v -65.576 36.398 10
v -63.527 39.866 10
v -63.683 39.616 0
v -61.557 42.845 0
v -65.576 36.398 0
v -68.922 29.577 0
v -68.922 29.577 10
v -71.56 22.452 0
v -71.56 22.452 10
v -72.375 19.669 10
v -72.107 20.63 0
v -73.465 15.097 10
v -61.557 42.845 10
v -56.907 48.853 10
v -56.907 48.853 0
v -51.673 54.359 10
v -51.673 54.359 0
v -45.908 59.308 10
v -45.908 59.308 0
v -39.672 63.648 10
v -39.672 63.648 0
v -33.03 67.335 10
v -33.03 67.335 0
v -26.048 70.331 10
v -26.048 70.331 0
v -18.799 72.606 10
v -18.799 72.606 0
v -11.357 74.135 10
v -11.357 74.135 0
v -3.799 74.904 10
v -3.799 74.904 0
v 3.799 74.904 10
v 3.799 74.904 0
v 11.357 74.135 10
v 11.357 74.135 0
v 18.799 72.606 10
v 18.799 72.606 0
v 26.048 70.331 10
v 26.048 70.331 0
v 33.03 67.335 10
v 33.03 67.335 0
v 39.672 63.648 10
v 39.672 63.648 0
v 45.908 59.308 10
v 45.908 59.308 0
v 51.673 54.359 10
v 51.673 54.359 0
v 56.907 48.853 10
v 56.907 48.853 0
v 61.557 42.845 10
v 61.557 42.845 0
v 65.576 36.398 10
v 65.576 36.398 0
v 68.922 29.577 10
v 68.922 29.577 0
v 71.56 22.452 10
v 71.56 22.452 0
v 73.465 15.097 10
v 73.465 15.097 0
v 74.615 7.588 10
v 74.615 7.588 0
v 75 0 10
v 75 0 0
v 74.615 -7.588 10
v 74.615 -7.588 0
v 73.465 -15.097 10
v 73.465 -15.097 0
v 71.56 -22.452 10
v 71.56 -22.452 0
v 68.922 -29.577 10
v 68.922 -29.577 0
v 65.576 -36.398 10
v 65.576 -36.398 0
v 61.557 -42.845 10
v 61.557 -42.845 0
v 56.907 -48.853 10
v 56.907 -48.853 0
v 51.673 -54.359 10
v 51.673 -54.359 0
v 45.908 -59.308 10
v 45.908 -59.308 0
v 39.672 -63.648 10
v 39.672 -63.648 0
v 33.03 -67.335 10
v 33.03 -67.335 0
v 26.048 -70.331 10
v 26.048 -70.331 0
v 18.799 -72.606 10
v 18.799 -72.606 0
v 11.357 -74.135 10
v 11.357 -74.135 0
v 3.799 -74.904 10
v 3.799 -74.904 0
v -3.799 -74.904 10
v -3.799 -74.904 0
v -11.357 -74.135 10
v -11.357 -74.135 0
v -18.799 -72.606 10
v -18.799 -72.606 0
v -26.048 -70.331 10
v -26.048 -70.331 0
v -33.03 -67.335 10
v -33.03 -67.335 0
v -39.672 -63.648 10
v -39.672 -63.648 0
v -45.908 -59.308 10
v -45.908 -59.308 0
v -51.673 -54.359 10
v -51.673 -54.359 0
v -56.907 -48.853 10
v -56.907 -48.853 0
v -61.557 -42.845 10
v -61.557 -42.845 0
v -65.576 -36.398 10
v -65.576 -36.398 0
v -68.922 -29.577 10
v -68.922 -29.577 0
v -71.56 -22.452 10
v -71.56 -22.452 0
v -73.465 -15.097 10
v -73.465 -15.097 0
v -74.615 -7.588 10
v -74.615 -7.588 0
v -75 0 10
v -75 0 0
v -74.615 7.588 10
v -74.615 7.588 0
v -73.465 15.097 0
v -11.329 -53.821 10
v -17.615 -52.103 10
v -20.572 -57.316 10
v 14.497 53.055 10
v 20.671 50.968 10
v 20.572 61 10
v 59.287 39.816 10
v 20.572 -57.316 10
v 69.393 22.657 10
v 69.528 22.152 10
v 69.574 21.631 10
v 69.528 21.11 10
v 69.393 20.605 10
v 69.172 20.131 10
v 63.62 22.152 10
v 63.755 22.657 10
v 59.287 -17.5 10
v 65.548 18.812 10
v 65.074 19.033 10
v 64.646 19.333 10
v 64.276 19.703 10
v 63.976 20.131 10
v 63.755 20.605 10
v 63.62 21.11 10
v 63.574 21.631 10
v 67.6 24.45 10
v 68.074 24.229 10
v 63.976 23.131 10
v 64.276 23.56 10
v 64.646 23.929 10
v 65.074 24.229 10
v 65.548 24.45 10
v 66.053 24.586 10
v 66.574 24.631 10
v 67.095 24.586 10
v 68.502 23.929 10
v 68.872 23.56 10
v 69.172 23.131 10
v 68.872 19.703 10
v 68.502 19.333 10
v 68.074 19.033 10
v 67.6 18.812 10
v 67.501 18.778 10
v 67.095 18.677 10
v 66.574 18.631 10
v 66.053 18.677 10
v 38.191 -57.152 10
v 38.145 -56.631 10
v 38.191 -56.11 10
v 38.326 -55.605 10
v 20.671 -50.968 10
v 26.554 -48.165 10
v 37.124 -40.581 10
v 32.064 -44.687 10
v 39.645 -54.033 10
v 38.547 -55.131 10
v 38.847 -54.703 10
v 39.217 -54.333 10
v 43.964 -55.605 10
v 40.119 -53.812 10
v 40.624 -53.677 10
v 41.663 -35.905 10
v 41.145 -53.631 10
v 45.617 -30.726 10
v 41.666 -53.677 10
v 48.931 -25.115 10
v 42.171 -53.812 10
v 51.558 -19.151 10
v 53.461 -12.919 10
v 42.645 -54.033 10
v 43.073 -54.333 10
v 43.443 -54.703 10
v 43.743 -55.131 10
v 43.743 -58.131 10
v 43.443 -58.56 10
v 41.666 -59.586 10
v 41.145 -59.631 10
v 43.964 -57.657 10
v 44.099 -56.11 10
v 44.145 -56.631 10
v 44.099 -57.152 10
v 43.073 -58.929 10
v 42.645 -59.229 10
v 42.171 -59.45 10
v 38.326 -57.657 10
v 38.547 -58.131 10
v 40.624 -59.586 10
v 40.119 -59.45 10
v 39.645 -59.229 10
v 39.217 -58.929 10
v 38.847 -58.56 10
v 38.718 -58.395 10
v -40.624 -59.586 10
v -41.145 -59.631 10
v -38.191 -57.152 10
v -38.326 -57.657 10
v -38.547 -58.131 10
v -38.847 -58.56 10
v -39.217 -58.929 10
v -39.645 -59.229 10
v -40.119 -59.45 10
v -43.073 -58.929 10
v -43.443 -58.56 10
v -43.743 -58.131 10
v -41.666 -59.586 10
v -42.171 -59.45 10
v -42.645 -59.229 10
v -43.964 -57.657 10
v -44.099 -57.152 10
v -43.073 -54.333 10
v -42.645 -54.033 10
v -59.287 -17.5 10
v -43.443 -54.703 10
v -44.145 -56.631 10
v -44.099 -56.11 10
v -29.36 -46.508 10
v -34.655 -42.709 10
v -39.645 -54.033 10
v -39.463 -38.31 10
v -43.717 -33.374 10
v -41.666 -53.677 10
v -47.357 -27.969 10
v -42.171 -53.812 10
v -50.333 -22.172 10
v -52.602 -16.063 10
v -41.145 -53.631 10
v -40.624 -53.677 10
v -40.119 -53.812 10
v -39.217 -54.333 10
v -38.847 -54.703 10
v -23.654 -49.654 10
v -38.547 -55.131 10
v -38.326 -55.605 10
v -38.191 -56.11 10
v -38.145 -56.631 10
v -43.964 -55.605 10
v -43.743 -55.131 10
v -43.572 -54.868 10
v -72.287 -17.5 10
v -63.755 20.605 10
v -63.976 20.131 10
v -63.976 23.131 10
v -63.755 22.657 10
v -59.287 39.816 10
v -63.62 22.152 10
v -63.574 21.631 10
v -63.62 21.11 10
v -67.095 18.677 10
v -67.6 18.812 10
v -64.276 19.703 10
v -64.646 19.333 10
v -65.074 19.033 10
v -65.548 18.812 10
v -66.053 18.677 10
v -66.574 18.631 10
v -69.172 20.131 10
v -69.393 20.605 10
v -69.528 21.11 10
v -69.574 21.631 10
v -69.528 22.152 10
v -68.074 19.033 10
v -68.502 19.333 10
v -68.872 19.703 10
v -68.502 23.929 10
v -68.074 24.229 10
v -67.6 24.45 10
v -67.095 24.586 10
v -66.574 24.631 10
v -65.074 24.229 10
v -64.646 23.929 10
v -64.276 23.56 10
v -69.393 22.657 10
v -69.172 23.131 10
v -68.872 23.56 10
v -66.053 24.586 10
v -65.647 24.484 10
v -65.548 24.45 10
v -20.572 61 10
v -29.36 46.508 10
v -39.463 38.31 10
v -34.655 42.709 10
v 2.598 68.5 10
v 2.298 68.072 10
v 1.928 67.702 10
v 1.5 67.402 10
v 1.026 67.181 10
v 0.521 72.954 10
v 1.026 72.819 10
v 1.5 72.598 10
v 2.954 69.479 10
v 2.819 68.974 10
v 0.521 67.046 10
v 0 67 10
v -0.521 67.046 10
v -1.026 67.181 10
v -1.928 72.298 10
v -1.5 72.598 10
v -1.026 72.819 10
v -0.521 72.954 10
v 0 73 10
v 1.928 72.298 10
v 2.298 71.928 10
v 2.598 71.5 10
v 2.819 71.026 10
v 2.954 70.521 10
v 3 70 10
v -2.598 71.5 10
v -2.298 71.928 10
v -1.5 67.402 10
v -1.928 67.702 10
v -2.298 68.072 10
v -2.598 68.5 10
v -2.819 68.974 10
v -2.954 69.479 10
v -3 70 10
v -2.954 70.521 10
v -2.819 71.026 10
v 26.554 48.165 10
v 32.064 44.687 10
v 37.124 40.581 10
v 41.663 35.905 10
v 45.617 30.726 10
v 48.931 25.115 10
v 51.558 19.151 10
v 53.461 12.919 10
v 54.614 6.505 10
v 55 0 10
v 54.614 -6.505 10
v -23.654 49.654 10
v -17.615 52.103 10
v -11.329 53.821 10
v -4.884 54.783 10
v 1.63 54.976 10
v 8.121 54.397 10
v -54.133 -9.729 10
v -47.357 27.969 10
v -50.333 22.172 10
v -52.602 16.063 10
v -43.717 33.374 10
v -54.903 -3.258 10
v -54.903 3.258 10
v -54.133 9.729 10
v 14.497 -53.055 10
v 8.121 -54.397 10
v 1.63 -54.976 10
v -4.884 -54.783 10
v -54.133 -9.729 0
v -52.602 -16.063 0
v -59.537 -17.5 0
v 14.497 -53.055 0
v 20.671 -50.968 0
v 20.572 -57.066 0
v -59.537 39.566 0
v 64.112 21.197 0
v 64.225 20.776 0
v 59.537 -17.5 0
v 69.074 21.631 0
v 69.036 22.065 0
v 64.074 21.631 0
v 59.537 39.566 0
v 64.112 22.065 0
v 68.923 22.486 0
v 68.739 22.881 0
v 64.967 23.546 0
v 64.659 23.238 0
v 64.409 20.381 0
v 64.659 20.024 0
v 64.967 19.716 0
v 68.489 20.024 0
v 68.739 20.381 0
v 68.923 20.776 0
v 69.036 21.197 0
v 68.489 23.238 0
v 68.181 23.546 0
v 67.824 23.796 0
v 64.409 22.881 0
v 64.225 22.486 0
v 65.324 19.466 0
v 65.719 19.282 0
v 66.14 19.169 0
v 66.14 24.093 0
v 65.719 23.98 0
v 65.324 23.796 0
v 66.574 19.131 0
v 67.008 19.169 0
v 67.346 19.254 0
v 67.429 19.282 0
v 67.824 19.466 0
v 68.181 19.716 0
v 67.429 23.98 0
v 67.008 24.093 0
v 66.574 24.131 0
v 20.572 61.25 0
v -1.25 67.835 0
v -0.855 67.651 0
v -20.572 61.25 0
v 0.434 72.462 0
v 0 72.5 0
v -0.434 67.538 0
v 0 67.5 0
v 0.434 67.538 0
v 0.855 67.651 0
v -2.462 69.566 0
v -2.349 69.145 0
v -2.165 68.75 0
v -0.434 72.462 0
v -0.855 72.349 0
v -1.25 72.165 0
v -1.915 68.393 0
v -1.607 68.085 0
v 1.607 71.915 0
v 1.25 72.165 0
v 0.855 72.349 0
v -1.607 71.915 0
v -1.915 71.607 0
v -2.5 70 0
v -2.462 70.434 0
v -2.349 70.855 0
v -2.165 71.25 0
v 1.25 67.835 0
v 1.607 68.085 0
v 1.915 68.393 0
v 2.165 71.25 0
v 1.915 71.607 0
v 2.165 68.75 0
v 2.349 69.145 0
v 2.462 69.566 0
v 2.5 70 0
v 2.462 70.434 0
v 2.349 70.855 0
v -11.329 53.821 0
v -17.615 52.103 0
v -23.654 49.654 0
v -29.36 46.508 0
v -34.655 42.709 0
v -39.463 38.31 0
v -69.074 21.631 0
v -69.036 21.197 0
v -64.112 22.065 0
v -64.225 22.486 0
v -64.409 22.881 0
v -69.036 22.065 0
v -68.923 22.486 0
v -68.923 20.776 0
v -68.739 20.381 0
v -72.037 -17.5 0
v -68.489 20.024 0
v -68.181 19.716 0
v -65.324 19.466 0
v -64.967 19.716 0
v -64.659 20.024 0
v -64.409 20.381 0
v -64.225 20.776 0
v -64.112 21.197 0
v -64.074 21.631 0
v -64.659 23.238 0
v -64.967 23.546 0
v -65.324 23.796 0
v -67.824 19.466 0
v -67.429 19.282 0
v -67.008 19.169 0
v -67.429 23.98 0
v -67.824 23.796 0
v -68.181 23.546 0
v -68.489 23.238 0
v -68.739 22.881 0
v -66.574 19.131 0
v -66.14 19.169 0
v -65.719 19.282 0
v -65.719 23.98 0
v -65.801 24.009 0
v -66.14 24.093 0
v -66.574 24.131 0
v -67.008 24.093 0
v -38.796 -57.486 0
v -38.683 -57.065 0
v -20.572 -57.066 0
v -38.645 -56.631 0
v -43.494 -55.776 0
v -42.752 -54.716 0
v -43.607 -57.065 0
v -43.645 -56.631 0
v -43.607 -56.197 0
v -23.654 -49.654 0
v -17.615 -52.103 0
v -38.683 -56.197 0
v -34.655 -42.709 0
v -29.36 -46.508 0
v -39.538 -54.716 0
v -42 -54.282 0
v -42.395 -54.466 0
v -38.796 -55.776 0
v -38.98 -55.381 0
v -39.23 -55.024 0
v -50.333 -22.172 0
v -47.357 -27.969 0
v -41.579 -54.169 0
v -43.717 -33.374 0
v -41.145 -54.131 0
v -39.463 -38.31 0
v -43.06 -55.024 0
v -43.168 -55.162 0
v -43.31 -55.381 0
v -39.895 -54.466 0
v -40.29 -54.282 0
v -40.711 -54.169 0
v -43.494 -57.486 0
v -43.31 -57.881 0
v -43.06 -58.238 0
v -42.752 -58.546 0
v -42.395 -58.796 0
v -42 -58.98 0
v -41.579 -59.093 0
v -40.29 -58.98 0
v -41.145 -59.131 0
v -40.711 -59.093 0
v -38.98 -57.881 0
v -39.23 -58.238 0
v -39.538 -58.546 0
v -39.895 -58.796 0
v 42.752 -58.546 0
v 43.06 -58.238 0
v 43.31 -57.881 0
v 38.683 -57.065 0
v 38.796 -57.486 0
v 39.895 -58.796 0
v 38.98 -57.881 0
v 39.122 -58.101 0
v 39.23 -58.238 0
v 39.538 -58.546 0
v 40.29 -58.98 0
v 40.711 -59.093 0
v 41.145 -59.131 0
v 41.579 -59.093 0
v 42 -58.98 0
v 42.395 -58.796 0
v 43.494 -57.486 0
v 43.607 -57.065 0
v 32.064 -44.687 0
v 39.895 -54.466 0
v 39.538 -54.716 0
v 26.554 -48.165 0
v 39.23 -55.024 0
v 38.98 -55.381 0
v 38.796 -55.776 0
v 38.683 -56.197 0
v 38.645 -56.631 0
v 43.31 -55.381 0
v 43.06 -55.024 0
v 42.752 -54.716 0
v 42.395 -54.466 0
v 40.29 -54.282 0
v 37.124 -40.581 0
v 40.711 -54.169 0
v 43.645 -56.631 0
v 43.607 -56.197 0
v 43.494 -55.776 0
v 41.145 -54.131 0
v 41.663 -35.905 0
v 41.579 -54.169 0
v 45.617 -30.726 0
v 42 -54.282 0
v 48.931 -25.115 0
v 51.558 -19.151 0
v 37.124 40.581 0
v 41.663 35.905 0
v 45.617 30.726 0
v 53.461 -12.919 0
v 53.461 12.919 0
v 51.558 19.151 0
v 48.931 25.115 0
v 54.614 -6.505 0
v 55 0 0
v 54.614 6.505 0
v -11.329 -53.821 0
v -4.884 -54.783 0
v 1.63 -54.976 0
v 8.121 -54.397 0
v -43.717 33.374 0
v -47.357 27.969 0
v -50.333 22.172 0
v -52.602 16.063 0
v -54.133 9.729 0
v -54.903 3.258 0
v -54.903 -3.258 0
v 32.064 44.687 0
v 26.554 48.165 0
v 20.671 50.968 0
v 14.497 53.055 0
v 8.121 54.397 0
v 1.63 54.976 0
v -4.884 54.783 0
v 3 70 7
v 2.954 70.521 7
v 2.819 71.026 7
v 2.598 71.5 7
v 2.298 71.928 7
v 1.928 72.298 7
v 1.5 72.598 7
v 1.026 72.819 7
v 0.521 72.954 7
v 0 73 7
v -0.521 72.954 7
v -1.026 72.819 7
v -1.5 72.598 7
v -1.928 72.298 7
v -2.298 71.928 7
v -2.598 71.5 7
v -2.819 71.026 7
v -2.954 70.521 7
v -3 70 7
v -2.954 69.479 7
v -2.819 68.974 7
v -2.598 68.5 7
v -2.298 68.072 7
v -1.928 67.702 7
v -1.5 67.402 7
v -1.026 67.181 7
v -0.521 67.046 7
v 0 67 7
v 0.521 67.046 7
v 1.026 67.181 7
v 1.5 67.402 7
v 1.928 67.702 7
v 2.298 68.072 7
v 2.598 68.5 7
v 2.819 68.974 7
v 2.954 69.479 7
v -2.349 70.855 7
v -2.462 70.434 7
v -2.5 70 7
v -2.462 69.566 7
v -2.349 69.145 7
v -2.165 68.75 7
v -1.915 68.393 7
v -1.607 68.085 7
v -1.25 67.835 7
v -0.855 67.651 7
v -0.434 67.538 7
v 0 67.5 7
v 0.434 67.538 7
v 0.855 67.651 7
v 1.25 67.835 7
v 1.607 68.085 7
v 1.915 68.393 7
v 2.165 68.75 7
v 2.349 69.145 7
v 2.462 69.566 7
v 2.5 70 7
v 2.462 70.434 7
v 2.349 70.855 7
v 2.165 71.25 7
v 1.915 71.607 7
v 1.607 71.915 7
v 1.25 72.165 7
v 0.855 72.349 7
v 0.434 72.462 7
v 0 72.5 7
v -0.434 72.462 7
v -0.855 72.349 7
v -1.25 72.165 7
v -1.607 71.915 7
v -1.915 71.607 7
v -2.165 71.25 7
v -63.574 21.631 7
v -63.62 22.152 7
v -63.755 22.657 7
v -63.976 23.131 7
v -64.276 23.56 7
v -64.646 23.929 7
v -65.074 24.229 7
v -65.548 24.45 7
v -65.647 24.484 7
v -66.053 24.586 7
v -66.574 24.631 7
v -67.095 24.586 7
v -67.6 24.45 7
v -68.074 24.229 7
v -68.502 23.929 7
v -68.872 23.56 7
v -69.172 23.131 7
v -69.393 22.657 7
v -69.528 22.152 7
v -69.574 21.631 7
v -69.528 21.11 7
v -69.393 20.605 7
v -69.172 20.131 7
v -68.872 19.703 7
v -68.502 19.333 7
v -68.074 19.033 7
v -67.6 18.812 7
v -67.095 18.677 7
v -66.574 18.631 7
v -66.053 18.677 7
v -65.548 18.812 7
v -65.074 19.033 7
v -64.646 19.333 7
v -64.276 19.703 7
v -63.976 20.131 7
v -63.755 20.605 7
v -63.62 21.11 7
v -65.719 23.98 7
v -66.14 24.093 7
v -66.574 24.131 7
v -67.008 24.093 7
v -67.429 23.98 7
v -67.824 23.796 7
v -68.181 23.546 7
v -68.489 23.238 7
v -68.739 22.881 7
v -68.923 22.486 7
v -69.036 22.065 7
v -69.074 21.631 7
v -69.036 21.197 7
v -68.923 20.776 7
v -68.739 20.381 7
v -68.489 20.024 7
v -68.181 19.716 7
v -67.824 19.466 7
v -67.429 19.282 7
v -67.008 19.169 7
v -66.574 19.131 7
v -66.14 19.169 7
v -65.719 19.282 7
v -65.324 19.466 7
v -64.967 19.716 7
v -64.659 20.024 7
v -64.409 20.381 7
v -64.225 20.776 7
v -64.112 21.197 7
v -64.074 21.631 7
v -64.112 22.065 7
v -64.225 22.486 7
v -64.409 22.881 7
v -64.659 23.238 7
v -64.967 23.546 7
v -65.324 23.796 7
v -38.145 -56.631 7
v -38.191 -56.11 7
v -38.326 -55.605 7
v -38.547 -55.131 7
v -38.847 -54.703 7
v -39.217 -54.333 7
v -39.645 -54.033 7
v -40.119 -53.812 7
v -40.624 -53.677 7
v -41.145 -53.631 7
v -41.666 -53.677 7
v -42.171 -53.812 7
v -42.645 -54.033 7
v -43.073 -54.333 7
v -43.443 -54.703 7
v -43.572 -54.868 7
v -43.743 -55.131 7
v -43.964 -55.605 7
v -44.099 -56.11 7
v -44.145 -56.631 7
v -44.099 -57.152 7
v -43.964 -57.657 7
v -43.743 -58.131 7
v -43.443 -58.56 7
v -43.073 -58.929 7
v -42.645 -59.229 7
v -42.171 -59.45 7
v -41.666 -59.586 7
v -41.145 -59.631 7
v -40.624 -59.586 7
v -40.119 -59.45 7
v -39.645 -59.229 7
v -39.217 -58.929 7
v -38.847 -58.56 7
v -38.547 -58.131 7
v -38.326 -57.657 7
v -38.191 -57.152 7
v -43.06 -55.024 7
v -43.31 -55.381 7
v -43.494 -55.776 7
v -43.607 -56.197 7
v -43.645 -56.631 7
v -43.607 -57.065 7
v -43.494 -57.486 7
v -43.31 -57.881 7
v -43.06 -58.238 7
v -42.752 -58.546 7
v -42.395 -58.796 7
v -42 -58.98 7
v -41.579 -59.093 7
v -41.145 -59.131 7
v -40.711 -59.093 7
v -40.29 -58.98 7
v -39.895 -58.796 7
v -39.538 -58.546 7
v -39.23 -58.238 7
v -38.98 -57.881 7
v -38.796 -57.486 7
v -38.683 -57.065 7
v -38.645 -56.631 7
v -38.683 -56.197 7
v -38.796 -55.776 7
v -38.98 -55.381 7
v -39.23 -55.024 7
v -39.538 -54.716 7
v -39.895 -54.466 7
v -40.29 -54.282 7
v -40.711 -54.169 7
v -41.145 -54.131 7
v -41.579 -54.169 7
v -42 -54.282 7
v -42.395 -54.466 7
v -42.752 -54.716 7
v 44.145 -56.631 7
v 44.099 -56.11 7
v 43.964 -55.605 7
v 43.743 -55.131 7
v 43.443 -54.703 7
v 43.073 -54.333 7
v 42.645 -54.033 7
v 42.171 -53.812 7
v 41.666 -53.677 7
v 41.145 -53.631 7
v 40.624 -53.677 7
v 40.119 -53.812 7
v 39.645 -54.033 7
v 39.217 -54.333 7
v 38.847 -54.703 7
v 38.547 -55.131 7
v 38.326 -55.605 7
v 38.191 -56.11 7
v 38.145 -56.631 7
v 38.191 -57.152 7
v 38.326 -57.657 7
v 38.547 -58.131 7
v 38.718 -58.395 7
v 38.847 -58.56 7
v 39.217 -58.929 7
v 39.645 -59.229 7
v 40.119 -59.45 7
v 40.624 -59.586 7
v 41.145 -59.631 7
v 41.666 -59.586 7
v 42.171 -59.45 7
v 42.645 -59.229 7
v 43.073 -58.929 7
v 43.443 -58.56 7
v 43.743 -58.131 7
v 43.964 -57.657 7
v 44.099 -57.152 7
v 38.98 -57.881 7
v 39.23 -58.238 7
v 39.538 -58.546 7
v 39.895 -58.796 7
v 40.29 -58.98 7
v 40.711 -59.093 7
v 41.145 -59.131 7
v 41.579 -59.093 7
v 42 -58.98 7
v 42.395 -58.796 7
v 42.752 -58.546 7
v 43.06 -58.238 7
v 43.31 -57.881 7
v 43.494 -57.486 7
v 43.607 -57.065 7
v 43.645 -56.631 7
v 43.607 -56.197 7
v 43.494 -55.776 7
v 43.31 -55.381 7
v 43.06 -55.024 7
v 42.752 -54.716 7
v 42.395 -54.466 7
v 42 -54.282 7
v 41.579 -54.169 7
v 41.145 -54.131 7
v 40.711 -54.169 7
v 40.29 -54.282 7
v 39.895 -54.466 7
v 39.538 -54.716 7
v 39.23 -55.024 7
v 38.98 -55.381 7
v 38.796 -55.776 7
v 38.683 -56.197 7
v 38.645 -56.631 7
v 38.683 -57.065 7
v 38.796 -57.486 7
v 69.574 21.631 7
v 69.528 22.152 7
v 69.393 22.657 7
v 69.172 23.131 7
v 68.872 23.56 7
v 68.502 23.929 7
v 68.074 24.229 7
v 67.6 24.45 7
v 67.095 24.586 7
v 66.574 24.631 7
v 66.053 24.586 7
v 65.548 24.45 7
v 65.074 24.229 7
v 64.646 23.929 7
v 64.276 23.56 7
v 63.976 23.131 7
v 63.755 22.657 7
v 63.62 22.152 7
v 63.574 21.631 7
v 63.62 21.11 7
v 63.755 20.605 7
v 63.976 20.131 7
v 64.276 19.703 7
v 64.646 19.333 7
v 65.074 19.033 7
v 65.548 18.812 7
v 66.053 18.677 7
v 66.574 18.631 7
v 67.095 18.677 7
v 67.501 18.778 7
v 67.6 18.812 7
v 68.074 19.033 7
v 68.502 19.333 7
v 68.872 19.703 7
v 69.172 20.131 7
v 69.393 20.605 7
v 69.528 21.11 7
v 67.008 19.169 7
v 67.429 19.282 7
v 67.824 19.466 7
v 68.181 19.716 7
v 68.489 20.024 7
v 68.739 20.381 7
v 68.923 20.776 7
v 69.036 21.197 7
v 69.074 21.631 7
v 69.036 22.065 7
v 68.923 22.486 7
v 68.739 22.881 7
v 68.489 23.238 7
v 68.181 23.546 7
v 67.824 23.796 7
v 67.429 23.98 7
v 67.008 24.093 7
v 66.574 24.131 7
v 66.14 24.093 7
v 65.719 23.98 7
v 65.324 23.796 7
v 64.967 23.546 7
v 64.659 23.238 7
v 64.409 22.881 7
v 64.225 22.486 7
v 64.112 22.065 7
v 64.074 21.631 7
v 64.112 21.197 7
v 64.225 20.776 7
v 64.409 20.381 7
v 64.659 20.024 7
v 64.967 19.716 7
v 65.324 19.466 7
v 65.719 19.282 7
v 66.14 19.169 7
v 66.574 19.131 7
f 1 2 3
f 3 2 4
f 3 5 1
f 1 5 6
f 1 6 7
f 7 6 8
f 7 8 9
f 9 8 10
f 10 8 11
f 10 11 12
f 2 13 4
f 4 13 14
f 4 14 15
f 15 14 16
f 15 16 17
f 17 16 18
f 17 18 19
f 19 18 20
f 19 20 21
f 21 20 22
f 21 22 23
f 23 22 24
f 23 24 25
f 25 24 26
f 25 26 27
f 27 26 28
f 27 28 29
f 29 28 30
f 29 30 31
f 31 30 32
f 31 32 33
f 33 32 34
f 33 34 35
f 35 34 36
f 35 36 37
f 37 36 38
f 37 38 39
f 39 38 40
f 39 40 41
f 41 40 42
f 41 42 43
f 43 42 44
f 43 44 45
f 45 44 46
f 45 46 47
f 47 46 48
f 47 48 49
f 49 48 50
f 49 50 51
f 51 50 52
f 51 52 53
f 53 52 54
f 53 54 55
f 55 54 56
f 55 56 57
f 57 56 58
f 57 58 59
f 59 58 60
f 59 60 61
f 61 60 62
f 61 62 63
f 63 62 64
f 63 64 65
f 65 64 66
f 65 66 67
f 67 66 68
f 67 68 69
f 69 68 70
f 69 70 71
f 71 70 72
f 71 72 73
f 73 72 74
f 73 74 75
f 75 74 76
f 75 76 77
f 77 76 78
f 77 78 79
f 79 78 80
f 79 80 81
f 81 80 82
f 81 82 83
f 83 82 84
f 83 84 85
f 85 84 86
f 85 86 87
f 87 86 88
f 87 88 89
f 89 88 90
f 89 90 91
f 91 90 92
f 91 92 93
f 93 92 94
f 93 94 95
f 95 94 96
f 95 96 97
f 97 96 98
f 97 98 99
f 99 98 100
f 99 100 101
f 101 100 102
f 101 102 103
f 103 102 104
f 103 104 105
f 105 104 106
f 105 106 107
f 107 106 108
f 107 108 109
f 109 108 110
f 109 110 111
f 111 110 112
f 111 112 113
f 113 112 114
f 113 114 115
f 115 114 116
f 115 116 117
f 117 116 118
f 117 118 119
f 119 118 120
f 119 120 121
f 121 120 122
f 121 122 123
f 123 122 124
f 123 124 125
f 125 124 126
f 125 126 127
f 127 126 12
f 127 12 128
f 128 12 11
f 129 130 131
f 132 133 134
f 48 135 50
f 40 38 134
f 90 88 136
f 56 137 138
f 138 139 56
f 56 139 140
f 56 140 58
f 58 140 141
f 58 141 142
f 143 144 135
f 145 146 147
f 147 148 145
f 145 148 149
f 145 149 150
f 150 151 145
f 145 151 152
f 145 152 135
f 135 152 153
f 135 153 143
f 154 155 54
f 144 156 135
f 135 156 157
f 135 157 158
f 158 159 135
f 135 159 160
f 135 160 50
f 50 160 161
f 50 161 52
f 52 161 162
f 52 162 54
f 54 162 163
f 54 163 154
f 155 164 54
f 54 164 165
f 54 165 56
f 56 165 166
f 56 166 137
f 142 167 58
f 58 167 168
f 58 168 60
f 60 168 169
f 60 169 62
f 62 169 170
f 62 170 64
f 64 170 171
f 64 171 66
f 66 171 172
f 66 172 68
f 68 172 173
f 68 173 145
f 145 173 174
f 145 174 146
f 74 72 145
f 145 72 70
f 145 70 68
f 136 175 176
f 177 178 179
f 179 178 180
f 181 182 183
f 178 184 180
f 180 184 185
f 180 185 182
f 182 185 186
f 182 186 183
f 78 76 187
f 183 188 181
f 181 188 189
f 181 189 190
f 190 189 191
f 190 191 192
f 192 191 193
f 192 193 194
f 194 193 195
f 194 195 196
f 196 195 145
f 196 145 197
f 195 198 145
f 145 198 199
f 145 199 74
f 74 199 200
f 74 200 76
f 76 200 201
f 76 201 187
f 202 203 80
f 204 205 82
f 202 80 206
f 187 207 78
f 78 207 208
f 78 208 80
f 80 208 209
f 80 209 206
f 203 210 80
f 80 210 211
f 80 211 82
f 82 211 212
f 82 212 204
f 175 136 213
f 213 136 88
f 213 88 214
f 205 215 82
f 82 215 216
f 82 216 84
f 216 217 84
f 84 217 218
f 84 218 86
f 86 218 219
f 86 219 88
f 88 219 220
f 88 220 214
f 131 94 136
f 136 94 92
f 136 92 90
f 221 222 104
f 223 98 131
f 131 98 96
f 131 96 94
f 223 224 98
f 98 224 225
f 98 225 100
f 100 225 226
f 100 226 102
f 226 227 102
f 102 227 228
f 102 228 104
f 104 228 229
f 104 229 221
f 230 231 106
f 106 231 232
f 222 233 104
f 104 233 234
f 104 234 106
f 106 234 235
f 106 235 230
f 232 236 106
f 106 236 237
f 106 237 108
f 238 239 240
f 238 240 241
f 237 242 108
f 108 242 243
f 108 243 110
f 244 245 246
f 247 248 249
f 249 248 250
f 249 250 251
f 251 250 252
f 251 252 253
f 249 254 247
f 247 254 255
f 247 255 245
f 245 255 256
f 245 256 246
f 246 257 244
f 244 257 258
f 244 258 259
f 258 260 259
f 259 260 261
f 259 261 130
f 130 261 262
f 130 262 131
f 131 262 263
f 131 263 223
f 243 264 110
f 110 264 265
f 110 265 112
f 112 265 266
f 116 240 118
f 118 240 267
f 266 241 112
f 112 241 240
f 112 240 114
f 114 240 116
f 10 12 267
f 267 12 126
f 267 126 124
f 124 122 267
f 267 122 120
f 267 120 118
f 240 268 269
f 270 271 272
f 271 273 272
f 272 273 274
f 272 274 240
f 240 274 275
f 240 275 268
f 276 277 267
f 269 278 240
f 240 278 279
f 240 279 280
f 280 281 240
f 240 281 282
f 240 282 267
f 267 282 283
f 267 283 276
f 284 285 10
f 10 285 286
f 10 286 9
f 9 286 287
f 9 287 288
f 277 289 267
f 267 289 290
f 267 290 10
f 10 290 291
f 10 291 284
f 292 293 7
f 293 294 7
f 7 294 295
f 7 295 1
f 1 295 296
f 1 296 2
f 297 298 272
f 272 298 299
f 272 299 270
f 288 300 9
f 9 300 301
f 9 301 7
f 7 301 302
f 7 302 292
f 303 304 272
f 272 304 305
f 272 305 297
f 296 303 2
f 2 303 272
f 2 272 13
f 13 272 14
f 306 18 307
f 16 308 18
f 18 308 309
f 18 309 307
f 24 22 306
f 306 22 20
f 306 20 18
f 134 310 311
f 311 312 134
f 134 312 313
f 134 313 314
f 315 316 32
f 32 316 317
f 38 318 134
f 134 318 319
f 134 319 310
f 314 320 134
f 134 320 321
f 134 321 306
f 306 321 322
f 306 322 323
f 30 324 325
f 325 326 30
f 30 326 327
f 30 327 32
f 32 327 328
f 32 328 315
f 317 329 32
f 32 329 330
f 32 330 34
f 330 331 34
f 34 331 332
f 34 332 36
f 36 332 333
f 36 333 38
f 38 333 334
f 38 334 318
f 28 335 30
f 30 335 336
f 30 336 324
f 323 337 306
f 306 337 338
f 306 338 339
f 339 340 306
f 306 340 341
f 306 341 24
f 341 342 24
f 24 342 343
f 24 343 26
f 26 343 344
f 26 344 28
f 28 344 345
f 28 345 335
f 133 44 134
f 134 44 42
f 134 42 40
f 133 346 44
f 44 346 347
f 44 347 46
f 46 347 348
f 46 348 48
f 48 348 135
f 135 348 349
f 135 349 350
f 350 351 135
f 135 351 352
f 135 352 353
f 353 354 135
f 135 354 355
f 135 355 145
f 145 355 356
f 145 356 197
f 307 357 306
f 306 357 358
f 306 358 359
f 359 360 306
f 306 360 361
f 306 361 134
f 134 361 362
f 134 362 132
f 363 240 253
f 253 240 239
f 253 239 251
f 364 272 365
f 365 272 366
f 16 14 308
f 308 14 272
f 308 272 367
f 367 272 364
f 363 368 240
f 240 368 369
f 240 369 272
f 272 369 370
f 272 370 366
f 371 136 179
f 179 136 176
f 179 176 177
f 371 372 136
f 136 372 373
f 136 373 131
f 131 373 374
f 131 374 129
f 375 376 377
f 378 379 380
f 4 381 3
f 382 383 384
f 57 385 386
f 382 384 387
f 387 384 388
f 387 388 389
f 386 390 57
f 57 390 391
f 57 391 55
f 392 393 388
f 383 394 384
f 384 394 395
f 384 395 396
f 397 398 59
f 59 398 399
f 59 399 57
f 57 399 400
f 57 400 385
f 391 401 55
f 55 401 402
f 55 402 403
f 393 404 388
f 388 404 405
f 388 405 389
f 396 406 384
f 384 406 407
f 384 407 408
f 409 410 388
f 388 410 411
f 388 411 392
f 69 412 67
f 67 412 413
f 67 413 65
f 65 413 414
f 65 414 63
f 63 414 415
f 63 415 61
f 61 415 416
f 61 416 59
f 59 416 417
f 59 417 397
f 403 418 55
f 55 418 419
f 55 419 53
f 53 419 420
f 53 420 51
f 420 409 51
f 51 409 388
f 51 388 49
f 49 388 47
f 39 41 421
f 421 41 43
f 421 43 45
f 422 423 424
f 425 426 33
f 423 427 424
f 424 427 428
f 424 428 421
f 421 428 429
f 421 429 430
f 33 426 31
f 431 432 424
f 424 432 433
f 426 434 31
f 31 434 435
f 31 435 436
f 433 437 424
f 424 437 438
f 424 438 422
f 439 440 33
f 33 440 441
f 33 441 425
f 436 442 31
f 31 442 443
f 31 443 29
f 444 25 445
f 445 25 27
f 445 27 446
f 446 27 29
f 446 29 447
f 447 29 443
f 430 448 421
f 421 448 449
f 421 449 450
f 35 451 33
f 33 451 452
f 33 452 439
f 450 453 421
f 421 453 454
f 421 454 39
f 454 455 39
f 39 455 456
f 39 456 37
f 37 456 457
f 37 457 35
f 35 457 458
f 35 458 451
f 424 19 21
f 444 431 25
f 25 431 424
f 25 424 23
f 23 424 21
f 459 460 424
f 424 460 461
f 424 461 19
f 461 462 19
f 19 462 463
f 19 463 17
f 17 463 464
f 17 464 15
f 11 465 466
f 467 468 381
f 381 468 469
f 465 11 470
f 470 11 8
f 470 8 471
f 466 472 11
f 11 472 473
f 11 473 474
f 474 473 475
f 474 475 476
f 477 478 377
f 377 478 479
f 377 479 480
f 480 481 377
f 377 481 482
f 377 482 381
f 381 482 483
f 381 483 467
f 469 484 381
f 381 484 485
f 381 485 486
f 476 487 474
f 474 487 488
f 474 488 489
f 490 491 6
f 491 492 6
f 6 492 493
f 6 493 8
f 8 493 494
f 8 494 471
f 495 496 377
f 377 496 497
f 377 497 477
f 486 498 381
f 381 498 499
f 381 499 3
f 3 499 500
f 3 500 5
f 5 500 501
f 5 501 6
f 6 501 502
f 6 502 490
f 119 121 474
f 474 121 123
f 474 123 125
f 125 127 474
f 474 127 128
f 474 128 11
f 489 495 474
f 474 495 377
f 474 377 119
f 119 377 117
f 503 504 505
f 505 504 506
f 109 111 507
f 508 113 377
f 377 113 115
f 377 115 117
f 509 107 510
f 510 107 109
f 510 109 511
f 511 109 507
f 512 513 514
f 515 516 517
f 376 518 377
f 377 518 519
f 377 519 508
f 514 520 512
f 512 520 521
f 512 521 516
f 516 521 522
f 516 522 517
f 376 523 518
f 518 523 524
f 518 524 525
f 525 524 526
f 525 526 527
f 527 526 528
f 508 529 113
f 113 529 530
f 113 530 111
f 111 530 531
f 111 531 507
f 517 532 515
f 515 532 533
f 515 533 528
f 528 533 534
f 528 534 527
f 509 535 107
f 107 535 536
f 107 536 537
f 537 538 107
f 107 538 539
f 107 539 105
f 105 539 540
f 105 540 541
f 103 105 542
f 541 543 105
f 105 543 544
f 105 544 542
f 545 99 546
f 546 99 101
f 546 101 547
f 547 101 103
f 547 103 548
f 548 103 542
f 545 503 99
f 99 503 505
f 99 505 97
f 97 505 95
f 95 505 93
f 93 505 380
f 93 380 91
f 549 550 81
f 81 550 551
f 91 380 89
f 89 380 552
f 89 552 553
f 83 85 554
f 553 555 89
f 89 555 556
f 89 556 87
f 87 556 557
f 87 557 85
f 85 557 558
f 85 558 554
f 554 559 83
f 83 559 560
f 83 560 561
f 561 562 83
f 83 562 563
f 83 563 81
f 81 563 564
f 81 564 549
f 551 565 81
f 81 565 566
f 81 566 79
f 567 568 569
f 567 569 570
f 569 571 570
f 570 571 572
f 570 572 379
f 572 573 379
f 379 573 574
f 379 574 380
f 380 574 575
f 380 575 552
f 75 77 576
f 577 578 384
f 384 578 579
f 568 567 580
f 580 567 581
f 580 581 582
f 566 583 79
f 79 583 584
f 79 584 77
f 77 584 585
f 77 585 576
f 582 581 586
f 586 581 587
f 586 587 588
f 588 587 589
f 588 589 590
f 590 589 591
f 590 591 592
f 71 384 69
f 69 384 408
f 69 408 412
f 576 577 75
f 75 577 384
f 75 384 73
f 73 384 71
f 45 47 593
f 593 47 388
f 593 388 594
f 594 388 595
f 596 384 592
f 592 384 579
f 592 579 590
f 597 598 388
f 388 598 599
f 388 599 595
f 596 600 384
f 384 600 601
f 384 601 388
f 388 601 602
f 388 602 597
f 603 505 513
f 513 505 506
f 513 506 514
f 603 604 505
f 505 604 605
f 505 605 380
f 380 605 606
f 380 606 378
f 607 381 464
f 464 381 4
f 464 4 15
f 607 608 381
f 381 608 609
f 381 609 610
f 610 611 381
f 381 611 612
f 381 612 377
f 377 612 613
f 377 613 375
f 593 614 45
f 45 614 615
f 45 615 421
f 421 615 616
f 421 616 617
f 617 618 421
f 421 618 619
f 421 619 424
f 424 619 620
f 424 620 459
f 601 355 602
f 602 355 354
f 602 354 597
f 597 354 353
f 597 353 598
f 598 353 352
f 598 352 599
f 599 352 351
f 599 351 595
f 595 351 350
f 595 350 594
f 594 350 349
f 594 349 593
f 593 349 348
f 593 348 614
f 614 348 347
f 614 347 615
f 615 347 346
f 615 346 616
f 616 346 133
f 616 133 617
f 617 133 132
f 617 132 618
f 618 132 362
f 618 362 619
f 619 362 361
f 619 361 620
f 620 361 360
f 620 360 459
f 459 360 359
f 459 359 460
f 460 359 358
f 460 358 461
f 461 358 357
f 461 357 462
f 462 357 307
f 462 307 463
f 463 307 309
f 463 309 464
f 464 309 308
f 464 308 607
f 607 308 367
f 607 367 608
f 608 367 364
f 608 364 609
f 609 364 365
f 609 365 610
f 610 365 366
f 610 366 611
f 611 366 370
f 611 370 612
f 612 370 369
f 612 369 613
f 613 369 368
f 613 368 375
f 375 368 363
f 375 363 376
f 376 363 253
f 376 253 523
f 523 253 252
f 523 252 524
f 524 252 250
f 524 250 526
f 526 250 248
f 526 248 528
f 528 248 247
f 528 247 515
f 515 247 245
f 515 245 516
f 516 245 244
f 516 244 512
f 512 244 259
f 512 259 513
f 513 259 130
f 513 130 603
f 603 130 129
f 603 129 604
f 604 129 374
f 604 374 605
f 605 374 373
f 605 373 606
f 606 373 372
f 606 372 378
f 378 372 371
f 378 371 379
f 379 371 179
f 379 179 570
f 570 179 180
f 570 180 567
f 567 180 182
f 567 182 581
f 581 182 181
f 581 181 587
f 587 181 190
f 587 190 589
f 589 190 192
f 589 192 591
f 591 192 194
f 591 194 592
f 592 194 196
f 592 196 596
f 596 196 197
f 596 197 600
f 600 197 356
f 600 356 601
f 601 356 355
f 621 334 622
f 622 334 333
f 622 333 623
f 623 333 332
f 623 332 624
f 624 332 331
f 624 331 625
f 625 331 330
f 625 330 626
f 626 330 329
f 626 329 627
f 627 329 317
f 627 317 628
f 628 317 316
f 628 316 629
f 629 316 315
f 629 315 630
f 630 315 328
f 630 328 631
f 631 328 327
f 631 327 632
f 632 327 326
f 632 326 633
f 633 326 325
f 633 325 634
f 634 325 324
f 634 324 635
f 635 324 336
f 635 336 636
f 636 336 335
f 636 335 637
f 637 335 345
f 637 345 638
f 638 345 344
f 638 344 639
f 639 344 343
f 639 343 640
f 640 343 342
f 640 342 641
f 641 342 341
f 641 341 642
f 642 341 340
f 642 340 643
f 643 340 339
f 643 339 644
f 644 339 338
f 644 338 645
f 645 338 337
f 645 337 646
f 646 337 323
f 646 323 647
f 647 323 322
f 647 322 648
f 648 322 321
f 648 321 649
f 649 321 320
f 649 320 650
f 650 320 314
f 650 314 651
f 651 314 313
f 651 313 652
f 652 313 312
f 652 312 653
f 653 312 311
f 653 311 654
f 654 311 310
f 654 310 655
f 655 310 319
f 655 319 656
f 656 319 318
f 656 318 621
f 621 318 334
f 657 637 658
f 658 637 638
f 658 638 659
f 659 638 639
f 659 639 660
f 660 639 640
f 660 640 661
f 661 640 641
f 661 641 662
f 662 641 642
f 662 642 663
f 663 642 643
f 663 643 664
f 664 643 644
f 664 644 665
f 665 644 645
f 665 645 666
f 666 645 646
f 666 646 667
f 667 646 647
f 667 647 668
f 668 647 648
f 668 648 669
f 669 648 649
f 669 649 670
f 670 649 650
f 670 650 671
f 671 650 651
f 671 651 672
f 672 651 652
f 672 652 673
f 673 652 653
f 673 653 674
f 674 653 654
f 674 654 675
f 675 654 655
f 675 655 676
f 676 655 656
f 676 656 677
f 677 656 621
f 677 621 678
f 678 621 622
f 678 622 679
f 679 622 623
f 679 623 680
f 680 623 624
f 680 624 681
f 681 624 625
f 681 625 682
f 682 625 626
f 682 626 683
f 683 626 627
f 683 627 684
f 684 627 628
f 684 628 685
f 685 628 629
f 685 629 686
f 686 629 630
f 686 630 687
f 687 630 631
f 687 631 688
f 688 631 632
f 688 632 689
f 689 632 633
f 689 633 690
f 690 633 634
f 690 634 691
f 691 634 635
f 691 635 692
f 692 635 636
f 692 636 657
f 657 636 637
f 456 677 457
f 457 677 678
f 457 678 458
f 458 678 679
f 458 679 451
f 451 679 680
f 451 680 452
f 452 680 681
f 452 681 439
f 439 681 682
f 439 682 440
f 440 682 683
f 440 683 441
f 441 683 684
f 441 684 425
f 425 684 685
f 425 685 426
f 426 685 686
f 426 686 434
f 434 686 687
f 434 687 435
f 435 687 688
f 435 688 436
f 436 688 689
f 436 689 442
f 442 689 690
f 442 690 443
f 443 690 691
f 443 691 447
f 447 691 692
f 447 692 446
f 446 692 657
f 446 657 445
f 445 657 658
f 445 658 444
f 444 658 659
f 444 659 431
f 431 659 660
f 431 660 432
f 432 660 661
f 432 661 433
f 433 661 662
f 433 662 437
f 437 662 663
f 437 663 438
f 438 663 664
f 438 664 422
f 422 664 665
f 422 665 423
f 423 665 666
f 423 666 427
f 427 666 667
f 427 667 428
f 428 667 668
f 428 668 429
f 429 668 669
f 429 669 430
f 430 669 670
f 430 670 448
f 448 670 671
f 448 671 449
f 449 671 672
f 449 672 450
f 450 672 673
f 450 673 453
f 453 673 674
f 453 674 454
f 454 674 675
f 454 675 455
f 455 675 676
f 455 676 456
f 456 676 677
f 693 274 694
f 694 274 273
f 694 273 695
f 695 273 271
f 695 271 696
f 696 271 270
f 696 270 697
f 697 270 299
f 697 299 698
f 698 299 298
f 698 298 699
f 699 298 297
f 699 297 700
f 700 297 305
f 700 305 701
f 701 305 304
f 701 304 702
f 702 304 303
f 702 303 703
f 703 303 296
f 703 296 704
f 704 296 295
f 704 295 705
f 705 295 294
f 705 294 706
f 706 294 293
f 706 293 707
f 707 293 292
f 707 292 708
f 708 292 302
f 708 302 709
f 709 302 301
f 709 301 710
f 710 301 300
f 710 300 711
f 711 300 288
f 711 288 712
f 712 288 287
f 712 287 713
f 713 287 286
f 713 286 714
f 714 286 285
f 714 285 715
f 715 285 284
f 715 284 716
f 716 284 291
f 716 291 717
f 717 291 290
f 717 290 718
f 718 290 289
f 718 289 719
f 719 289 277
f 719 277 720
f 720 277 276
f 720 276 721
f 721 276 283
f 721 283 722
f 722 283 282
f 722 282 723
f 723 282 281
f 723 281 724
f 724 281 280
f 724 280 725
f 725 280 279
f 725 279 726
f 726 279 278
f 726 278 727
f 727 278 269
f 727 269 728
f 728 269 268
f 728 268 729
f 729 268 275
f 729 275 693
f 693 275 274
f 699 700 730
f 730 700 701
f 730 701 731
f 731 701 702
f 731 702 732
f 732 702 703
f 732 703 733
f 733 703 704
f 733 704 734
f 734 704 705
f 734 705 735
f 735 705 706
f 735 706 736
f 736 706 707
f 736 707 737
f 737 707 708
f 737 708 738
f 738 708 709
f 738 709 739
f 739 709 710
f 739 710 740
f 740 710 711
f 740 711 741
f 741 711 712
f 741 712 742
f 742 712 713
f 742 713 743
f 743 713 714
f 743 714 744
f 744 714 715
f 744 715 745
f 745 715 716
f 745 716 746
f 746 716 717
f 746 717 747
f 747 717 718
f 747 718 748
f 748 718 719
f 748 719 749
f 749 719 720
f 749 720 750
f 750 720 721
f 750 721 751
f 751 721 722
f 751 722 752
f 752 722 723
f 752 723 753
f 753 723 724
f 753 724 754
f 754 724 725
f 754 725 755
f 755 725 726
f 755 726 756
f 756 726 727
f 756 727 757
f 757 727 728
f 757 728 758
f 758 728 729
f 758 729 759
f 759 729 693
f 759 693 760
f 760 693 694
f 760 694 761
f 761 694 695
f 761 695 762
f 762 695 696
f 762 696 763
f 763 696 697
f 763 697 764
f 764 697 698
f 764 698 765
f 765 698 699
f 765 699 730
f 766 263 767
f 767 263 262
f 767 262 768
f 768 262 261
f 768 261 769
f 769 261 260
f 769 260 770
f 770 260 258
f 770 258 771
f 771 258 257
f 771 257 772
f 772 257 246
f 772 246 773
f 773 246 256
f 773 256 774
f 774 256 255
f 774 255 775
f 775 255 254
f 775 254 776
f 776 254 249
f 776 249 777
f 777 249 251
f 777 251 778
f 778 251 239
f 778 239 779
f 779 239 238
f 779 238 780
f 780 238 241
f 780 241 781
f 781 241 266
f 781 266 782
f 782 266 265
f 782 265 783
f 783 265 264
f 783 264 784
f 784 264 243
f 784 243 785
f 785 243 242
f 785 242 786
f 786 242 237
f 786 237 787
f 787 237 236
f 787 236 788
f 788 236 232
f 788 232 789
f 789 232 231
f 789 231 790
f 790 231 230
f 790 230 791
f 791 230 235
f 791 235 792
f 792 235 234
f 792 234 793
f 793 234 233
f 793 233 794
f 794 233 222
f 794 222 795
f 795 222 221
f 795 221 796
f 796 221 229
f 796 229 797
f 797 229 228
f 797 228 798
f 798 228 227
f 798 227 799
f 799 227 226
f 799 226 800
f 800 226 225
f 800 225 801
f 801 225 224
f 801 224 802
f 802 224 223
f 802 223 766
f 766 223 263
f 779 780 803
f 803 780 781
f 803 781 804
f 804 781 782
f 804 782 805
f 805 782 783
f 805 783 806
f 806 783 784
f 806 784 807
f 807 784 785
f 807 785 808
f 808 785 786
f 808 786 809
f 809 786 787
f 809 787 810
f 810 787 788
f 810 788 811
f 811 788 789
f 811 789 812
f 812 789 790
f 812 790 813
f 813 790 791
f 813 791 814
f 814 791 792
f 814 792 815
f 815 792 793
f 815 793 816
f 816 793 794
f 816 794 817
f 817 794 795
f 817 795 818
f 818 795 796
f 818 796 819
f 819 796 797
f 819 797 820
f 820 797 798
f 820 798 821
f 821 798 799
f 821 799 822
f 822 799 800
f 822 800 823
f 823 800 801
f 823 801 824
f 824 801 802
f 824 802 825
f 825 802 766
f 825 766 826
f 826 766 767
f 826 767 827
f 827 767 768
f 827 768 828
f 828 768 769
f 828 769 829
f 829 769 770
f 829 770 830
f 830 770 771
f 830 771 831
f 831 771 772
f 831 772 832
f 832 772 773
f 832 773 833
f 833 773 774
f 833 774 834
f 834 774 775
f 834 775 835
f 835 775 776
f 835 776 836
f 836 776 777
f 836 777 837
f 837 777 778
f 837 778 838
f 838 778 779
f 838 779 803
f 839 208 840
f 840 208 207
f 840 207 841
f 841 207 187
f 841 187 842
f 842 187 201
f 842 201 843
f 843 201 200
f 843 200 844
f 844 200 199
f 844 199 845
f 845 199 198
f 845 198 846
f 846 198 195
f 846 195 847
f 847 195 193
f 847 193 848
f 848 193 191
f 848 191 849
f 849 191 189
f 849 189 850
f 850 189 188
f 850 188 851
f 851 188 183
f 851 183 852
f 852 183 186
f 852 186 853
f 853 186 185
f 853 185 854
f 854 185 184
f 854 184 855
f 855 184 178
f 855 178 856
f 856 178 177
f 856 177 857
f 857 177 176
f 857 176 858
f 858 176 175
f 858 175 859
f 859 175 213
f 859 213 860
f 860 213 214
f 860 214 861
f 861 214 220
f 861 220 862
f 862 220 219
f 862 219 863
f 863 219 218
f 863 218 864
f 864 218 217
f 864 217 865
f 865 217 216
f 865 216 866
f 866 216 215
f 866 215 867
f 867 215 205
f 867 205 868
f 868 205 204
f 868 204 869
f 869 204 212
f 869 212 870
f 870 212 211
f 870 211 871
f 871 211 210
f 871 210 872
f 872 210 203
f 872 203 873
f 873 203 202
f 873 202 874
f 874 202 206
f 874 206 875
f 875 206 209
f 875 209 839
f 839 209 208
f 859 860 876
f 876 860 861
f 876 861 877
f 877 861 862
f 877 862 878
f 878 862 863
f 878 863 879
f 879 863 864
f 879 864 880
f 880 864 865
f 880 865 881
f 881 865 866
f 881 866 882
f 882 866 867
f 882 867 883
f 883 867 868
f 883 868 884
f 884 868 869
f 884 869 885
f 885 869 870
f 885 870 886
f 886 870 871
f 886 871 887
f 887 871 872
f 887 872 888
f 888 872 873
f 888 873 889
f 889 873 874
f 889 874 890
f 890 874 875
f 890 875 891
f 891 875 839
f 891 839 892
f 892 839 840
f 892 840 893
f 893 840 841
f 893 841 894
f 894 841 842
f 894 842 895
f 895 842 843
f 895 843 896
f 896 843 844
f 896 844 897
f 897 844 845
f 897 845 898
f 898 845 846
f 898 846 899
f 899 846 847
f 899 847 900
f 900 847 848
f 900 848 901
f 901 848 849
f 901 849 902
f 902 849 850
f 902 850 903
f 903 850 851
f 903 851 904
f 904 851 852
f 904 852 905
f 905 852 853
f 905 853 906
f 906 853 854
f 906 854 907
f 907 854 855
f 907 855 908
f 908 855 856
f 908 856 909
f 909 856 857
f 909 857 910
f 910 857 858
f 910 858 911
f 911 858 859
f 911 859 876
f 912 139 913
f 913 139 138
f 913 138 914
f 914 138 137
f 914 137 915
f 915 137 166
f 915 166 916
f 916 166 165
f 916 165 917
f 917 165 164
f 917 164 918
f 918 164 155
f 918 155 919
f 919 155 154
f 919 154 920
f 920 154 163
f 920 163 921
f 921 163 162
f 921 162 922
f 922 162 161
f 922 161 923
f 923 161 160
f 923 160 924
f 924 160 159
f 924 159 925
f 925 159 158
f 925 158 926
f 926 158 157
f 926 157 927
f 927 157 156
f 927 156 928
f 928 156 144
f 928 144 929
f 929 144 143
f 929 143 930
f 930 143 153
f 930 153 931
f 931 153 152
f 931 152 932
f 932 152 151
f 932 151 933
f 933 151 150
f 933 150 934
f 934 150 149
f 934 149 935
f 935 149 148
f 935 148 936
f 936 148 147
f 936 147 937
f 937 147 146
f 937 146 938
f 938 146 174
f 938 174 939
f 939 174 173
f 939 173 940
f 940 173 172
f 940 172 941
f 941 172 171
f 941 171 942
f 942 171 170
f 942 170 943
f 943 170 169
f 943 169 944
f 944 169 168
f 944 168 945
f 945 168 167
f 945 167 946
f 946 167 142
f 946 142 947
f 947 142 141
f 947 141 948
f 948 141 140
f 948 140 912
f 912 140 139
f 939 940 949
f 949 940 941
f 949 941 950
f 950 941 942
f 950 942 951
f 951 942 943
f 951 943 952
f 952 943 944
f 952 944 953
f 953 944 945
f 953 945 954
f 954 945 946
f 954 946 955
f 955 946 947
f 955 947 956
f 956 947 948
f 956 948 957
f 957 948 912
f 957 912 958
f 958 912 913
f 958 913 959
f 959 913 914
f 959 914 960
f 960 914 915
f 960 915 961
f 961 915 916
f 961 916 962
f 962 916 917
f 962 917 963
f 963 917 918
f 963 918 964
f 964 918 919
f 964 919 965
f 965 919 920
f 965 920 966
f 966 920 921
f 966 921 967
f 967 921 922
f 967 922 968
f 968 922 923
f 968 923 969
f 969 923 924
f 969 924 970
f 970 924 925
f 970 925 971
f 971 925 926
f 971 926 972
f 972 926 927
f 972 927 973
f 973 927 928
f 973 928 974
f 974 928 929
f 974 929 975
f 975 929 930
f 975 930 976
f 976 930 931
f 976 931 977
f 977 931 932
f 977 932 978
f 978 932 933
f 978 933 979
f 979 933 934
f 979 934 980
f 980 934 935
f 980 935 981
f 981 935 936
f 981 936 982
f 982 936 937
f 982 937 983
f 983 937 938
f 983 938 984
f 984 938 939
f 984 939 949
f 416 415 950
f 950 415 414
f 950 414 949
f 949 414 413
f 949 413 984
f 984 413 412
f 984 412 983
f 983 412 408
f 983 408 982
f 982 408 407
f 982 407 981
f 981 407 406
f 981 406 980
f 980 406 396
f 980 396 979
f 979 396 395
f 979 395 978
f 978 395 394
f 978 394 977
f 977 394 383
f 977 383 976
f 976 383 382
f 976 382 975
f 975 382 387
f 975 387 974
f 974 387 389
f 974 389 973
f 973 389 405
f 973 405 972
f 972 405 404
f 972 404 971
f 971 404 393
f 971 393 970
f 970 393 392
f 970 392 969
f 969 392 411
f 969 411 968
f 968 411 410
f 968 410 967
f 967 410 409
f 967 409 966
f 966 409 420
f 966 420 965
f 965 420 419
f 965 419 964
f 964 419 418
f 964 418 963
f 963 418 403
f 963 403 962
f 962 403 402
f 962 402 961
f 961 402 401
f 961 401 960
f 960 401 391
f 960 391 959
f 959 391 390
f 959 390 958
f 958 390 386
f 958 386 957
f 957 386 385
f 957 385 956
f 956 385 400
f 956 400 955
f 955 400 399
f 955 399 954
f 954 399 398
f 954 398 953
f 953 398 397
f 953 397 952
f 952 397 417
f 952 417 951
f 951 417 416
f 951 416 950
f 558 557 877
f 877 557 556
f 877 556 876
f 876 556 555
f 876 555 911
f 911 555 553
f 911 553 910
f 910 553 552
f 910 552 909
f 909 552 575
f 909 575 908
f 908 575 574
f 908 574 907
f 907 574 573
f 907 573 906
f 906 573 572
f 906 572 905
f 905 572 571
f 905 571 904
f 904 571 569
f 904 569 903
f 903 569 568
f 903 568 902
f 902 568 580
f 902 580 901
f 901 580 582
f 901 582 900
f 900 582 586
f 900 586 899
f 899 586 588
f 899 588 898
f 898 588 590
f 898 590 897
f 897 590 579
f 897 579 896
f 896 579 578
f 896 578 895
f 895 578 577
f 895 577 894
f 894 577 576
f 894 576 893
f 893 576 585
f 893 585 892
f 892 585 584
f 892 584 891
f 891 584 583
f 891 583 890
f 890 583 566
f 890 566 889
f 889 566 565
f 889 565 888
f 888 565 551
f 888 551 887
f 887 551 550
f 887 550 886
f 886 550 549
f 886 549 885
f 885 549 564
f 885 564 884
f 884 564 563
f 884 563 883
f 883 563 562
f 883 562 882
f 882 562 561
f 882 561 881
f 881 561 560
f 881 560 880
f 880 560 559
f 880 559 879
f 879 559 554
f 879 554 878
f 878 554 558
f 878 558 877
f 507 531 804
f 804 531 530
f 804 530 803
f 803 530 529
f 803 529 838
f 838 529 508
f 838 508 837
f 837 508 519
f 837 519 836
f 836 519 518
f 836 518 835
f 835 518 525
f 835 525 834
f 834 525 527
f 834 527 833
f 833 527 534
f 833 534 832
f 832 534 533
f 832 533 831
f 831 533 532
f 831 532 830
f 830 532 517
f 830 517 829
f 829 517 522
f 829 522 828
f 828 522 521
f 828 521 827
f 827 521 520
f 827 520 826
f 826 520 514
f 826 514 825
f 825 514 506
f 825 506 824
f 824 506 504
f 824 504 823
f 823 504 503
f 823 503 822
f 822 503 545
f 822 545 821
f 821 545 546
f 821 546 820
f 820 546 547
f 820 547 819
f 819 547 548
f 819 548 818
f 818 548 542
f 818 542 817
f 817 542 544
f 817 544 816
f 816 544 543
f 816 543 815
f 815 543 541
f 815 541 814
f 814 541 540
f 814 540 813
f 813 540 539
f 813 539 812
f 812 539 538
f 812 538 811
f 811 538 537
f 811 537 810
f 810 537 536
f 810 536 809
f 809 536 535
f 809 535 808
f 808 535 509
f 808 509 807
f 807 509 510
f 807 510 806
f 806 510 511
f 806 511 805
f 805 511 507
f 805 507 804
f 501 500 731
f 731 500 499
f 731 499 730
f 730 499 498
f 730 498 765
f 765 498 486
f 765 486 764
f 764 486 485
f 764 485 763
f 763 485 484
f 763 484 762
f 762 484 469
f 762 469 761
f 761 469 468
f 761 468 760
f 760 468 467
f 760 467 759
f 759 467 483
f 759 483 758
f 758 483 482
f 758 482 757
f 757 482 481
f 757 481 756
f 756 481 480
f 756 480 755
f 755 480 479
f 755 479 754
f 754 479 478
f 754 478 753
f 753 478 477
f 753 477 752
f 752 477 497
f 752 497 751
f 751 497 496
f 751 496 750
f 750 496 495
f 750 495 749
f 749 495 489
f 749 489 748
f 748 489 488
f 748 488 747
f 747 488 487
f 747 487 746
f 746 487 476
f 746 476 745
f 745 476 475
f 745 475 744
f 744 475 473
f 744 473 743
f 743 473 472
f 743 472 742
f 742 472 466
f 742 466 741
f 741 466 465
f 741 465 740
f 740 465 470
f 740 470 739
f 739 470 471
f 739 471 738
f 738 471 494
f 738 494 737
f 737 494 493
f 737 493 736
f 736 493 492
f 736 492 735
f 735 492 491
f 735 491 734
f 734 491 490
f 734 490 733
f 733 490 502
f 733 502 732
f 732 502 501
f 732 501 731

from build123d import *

# Parameters (mm, degrees)
SKETCH2_R           = 75
BOSS_EXTRUDE1_DEPTH = 10
SKETCH3_R           = 55
CUT_EXTRUDE1_DEPTH  = 10
SKETCH6_R           = 3
CUT_EXTRUDE2_DEPTH  = 3
SKETCH5_R           = 2.5
CUT_EXTRUDE3_DEPTH  = 107.536378763
CIRPATTERN2_COUNT   = 5


with BuildPart() as part:
    # Sketch2 → Boss-Extrude1 (new body)
    with BuildSketch(Plane(origin=(0, 0, 0), x_dir=(0, 1, 0), z_dir=(0, 0, 1))):
        with Locations(Location((0, 0, 0), (0, 0, 270))):
            Circle(SKETCH2_R)
    extrude(amount=BOSS_EXTRUDE1_DEPTH)

    # Sketch3 → Cut-Extrude1 (cut)
    with BuildSketch(Plane.XY.offset(10)):
        Circle(SKETCH3_R)
    extrude(amount=-CUT_EXTRUDE1_DEPTH, mode=Mode.SUBTRACT)

    # Sketch6 → Cut-Extrude2 (cut)
    with BuildSketch(Plane.XY.offset(10)):
        with Locations((0, 70)):
            Circle(SKETCH6_R)
    cut_extrude2 = extrude(amount=-CUT_EXTRUDE2_DEPTH, mode=Mode.SUBTRACT)

    # Sketch5 → Cut-Extrude3 (cut, through all)
    with BuildSketch(Plane.XY.offset(10)):
        with Locations((0, 70)):
            Circle(SKETCH5_R)
    cut_extrude3 = extrude(amount=-CUT_EXTRUDE3_DEPTH, mode=Mode.SUBTRACT)

    # CirPattern2: Cut-Extrude2, Cut-Extrude3 ×5 about axis
    cirpattern2_axis = Axis((0, 0, 0), (0, 0, 1))
    add([cut_extrude2.rotate(cirpattern2_axis, i * 360 / CIRPATTERN2_COUNT) for i in range(1, CIRPATTERN2_COUNT)], mode=Mode.SUBTRACT)
    add([cut_extrude3.rotate(cirpattern2_axis, i * 360 / CIRPATTERN2_COUNT) for i in range(1, CIRPATTERN2_COUNT)], mode=Mode.SUBTRACT)


solid = part.part
